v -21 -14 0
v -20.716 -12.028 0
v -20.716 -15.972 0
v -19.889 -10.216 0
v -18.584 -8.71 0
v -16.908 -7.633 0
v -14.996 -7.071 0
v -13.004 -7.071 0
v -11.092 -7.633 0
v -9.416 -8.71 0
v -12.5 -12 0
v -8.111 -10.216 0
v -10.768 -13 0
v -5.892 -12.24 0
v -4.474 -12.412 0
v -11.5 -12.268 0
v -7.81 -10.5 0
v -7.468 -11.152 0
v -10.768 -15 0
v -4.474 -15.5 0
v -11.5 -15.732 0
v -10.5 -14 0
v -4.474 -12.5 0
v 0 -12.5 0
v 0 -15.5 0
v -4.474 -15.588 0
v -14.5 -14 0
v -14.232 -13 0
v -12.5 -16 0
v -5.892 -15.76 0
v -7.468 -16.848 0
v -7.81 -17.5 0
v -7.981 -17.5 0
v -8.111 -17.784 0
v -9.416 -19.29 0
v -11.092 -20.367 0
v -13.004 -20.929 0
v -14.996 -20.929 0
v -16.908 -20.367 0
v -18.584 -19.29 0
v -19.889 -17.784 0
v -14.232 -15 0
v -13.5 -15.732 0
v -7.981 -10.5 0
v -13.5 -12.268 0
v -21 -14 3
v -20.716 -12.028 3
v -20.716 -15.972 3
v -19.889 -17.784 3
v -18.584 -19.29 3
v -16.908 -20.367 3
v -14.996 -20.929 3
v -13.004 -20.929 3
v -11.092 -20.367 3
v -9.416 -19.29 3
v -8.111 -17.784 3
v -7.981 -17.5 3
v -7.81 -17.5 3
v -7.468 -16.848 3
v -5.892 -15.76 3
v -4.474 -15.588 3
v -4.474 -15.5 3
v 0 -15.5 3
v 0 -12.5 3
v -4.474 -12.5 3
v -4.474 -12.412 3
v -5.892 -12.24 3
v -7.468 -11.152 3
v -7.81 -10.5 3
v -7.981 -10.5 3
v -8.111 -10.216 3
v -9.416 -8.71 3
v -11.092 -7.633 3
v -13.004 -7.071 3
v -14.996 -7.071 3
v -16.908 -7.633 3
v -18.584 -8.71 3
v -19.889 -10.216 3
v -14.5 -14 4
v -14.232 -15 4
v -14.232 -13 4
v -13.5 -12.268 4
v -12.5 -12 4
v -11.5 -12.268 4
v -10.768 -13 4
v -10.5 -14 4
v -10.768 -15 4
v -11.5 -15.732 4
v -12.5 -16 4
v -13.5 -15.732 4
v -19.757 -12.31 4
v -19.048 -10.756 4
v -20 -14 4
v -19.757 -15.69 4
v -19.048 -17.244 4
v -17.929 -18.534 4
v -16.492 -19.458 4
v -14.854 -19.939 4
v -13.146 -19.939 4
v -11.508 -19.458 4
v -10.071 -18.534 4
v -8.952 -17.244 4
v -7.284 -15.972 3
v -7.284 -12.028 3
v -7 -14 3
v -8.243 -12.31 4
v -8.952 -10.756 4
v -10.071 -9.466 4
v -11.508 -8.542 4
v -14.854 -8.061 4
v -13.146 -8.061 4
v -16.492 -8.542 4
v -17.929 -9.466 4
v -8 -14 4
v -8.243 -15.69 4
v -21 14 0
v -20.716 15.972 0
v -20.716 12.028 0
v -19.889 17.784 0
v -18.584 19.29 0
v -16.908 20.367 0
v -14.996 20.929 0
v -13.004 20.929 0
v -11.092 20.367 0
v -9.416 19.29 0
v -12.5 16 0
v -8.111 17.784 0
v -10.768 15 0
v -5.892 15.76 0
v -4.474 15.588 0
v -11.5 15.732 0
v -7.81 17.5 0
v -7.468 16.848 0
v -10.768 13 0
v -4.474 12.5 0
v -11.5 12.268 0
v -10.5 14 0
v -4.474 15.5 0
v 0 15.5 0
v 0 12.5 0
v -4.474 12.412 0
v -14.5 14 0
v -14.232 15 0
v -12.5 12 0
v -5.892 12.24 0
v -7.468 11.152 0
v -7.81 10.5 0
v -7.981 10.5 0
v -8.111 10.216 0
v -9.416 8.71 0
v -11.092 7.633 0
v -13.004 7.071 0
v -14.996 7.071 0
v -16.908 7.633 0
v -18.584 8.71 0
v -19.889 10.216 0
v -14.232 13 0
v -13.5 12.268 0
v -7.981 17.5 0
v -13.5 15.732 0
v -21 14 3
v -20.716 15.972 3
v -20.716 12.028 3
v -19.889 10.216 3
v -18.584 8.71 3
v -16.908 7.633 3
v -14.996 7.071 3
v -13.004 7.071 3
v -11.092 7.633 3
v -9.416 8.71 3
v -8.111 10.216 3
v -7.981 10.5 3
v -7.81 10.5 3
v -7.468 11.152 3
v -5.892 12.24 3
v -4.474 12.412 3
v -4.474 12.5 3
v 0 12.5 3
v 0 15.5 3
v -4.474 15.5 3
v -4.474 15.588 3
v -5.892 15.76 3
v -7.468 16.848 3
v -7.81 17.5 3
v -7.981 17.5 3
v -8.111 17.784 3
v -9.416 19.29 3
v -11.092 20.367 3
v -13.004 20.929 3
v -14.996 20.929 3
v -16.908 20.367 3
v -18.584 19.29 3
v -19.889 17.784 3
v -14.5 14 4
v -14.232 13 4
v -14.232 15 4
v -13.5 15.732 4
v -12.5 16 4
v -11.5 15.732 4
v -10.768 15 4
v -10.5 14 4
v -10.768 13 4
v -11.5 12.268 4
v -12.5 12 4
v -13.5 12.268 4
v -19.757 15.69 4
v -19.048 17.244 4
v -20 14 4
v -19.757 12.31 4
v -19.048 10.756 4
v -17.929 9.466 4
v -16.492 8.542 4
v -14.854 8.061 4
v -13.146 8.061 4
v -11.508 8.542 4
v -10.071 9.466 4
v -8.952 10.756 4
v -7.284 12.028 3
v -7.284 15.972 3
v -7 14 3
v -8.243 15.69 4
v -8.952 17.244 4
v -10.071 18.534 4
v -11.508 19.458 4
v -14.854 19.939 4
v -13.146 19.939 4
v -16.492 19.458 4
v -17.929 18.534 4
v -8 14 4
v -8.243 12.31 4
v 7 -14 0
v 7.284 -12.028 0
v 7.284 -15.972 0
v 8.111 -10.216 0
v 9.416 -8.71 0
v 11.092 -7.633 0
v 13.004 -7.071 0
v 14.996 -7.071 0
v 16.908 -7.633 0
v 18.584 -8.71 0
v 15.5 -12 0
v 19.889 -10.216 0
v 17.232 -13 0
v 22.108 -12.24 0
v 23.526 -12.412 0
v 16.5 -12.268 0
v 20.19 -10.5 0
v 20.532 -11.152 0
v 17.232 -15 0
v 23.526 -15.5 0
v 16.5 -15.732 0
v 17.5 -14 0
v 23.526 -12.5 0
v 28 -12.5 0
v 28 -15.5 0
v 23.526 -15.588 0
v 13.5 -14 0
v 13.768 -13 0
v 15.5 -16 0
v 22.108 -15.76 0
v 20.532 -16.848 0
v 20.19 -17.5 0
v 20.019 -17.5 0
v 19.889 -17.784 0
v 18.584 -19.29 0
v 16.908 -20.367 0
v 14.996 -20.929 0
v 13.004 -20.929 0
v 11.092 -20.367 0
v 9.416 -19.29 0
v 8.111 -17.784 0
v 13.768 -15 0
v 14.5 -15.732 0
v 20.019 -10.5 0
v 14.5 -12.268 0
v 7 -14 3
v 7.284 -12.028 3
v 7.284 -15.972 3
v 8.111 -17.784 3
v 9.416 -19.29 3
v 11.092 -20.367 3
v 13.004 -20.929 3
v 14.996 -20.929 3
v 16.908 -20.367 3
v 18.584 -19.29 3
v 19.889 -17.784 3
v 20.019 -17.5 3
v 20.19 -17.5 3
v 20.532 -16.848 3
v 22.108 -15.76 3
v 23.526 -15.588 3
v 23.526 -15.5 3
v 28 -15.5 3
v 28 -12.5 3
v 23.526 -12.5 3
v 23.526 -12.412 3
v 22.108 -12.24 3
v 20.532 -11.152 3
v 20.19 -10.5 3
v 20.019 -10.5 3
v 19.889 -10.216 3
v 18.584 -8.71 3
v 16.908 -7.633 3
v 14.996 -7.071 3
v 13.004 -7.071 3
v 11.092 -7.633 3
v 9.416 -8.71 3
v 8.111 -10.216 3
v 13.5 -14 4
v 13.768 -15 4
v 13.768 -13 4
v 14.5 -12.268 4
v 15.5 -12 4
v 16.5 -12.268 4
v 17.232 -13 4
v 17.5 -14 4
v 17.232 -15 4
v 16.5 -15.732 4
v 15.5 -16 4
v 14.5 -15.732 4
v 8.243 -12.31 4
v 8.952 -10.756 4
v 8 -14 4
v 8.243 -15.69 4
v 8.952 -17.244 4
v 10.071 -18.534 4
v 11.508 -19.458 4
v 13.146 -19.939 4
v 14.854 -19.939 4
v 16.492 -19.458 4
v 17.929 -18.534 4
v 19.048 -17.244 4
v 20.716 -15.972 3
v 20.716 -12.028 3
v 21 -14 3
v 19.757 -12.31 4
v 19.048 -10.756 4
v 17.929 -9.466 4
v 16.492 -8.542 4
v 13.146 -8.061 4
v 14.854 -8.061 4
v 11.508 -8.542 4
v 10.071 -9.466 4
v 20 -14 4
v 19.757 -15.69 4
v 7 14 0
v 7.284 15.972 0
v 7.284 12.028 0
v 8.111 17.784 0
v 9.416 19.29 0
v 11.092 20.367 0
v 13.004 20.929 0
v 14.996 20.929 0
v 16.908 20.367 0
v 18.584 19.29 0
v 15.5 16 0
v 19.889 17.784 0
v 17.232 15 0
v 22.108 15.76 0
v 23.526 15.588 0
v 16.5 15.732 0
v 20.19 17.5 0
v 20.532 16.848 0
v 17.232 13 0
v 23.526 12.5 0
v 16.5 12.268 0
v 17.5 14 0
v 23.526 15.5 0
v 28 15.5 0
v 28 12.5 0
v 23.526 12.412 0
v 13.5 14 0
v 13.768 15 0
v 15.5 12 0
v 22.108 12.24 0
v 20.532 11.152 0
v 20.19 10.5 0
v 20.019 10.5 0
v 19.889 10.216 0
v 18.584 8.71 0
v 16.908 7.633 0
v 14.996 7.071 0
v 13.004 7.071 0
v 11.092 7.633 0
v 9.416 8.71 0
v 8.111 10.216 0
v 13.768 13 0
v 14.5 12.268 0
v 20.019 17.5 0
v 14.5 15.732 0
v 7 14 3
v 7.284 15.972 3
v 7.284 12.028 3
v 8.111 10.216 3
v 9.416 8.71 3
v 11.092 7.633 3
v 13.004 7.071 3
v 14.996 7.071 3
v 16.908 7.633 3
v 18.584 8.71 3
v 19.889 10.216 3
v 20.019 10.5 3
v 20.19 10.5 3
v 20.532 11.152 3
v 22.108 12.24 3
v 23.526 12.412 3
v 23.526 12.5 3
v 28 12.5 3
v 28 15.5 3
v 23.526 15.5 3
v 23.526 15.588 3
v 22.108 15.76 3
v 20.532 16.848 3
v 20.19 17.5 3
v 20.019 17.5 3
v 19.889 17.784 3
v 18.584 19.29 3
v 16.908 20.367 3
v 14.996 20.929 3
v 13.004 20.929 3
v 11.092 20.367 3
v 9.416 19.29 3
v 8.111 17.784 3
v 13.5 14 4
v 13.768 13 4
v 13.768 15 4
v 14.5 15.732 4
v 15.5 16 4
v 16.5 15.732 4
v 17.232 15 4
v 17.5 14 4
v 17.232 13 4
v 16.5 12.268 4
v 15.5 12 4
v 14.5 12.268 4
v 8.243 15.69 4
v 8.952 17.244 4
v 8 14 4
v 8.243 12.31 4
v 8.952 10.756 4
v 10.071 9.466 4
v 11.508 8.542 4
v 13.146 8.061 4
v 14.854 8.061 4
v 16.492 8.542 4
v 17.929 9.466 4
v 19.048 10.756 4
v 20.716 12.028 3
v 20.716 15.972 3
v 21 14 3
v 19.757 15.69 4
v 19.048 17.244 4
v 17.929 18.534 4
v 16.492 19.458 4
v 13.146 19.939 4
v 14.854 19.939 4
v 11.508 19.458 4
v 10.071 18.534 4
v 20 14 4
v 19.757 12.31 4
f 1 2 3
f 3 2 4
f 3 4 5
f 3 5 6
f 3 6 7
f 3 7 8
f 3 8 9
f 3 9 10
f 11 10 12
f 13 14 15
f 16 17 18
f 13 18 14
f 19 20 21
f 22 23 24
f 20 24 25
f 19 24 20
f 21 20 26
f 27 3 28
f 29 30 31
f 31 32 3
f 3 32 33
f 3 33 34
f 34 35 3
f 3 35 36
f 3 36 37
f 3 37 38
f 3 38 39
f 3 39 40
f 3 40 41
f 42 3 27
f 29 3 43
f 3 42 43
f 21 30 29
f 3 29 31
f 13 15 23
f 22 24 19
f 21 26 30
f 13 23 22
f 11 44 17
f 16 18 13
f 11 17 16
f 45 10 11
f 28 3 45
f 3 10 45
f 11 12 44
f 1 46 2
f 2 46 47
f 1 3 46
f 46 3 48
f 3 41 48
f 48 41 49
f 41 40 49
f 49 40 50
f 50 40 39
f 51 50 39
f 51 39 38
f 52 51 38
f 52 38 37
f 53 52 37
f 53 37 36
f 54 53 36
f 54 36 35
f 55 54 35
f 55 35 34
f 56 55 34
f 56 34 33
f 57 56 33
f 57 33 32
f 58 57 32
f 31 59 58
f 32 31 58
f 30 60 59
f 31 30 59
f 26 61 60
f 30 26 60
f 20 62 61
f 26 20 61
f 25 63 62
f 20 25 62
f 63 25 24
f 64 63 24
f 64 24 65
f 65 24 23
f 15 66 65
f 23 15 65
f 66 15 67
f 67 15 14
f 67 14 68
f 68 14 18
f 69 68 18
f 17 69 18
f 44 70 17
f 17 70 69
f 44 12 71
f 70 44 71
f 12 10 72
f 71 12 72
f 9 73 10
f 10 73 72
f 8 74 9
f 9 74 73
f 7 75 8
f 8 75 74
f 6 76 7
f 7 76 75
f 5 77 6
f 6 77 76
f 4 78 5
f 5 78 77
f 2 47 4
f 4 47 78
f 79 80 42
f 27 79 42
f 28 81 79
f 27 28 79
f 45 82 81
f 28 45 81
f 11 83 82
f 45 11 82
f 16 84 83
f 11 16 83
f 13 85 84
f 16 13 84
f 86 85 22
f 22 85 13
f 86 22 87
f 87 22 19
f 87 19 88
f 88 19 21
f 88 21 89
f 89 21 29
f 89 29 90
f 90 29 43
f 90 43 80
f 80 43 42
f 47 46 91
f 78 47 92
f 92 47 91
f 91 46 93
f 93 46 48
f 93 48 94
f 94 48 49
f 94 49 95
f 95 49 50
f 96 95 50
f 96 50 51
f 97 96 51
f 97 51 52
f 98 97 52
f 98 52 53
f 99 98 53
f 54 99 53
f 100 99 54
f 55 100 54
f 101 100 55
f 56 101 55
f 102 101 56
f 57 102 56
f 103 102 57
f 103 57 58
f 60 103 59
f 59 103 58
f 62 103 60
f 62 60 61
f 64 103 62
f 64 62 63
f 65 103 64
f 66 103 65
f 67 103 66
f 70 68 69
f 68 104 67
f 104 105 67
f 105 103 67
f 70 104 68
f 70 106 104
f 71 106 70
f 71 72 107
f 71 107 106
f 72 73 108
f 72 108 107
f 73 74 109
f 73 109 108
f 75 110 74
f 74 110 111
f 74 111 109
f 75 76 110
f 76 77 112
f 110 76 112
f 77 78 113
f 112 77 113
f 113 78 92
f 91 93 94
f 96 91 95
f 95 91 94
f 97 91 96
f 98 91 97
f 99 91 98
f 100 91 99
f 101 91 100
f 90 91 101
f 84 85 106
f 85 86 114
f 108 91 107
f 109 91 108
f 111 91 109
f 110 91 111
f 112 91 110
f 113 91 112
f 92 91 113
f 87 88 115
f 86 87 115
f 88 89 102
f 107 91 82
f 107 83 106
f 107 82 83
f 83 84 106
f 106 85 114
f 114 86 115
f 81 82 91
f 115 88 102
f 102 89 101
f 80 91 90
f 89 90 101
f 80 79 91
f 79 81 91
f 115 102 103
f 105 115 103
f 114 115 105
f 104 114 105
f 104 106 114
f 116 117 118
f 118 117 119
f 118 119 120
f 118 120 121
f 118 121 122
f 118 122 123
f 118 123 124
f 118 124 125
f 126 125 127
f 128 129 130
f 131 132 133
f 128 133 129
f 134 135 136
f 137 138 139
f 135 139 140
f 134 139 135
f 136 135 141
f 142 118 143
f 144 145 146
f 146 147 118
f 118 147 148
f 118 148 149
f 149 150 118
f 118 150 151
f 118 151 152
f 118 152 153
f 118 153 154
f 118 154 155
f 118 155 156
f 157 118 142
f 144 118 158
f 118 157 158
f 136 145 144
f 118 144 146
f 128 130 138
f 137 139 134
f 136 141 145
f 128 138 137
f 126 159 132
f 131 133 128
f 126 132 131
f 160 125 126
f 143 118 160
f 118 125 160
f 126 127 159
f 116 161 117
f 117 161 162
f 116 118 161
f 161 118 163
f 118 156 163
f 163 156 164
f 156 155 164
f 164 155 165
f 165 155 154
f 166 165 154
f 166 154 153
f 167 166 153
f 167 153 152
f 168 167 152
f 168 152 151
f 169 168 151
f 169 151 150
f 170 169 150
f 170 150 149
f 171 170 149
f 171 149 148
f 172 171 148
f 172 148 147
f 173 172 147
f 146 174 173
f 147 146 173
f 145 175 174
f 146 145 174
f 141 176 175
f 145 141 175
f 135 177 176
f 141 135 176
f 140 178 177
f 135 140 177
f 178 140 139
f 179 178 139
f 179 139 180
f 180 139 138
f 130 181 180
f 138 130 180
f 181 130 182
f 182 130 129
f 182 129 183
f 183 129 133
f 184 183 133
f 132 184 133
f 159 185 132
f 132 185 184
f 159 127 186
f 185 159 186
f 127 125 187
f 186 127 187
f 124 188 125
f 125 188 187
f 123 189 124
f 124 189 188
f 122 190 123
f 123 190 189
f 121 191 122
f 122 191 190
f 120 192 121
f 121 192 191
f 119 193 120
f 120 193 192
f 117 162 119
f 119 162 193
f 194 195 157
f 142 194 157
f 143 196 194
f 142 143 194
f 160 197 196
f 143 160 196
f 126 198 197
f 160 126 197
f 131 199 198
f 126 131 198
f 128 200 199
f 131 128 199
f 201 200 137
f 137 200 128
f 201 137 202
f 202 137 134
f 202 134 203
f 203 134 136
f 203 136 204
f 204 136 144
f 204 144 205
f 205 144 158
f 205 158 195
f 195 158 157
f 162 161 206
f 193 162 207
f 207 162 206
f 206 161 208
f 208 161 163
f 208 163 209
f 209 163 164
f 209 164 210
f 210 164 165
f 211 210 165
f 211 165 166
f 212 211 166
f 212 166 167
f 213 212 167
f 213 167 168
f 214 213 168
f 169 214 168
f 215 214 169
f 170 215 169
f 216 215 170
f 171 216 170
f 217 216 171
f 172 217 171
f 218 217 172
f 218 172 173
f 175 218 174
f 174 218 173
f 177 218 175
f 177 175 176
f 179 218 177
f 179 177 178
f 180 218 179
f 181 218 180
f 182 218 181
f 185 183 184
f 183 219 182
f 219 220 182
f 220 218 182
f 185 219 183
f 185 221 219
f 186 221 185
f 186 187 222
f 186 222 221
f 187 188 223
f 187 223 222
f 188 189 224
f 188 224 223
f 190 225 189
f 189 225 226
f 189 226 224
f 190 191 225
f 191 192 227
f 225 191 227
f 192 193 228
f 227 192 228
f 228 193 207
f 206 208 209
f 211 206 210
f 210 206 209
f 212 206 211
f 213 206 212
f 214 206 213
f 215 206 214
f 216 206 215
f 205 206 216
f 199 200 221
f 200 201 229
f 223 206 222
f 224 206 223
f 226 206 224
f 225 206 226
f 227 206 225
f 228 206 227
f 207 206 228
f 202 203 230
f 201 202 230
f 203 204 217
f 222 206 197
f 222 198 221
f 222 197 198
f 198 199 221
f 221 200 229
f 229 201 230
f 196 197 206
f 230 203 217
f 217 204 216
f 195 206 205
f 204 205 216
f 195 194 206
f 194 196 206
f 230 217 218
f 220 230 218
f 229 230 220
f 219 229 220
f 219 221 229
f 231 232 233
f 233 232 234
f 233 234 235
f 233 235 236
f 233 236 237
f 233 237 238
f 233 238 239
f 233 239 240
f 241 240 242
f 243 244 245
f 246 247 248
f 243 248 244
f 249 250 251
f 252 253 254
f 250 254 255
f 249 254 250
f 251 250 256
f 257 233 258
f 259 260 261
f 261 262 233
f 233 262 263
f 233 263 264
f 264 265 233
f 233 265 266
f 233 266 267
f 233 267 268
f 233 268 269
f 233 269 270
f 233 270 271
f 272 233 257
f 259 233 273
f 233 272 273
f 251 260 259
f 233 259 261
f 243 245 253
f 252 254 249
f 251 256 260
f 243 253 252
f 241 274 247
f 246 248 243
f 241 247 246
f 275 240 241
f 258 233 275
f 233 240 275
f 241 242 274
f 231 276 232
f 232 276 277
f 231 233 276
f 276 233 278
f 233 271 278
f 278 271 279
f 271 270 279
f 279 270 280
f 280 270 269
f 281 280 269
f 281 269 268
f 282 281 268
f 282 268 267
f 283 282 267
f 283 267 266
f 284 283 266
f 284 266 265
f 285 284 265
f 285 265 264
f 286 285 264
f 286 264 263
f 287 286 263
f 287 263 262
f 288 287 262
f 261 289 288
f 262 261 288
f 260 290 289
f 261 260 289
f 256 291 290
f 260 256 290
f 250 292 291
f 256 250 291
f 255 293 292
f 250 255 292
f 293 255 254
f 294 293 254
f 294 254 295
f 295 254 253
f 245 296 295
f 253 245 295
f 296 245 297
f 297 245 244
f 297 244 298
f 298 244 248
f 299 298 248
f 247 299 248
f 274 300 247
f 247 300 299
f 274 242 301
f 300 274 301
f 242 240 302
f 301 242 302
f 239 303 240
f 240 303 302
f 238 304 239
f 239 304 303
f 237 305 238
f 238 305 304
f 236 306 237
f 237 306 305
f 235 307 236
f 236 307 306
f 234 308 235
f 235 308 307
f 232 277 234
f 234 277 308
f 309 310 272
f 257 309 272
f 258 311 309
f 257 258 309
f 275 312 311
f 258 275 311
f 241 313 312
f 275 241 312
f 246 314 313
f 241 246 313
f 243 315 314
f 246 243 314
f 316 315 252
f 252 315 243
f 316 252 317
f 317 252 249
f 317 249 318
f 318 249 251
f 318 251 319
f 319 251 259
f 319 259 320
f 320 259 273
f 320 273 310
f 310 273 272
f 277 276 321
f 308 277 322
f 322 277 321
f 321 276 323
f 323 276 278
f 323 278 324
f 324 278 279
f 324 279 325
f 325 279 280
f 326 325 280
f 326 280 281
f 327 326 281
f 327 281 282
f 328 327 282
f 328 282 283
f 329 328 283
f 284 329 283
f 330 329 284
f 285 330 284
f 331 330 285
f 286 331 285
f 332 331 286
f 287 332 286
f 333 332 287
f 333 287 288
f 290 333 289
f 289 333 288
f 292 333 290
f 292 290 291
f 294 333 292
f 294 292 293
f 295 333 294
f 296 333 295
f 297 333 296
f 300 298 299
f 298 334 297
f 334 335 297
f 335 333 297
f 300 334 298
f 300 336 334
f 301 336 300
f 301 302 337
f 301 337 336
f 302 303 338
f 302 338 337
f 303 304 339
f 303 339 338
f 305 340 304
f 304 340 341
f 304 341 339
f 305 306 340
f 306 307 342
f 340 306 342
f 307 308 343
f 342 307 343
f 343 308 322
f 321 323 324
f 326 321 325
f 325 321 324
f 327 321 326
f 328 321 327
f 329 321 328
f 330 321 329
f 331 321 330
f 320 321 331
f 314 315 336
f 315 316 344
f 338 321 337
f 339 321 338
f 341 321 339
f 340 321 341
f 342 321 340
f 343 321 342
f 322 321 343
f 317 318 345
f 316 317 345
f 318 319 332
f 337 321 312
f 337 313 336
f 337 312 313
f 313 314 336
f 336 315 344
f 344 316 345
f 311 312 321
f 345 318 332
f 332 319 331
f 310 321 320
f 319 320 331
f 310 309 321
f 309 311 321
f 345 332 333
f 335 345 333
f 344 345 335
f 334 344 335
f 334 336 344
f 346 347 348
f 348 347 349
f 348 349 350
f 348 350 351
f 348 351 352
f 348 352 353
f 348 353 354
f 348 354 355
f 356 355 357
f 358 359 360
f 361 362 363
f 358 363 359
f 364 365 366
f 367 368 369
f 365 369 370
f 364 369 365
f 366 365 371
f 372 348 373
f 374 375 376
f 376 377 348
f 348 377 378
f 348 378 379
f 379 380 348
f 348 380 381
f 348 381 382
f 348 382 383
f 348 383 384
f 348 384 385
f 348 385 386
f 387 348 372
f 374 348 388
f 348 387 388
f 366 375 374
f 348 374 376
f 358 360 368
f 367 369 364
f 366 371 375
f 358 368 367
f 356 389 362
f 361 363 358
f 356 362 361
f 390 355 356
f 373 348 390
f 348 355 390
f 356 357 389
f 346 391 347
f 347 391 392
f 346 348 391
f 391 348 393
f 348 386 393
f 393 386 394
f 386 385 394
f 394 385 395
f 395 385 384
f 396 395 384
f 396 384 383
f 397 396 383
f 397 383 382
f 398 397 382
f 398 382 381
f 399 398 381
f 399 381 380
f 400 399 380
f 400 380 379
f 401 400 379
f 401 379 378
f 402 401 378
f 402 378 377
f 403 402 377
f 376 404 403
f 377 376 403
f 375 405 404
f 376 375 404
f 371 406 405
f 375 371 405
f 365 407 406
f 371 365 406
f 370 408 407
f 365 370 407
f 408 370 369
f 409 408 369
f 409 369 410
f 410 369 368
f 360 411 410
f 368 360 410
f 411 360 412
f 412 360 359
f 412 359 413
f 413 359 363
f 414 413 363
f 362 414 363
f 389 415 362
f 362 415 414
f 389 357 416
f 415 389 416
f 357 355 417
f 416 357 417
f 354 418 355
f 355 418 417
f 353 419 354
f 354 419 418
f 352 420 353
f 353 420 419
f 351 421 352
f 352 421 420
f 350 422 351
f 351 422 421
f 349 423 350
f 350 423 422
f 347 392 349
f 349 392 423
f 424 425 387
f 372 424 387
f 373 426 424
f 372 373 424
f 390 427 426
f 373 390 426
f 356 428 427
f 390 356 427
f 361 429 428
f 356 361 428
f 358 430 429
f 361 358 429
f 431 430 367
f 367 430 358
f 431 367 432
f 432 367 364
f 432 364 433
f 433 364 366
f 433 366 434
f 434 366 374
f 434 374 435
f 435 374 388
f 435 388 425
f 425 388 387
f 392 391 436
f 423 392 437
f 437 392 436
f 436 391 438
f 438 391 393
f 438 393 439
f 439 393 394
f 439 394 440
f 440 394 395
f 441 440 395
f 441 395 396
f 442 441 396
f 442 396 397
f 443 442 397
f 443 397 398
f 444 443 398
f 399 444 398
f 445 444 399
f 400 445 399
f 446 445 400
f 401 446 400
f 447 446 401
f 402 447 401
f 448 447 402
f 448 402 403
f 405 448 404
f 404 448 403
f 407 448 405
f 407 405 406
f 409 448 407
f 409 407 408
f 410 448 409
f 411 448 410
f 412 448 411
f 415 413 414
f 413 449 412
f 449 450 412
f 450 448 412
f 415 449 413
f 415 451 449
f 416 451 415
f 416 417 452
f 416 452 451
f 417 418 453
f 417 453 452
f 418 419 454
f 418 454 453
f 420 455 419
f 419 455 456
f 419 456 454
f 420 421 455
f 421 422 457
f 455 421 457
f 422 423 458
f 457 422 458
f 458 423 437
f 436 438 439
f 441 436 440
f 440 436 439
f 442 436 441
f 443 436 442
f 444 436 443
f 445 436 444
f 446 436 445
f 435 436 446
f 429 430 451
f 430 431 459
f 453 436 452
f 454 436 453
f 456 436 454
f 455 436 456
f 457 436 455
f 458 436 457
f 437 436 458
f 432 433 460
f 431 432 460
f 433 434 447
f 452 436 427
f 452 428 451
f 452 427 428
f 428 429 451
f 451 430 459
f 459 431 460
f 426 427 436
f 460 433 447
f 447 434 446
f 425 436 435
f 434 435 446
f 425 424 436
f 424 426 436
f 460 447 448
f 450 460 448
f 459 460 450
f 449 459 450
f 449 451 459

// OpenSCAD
// od = Outside diameter
// id = ionside (hole) diameter
// rt = retainer thickness
// ho = hole offset
// bh = Bevel height
// ll = lever length
// lt = lever thickness (width)
// d  = delta
module PrintBedRetainer(od, id, rt, ho, bh, ll, lt, d)
{
	s30 = sin(30);
    c30 = cos(30);
    lfr = od/2-lt;		// Lever fillet radius		
    lfp = od/2+lfr;		// Lever fillet pitch radius
    intersection()
    {
	    	difference()
		{
			union()
        		{
				cylinder(r=od/2, h=rt);
				translate([0,-od/4,0]) cube(size=[ll, od/2, rt]);
			}
			translate([ho,0,-d]) cylinder(r=id/2, h=rt+2*d, $fn=12);
			translate([c30*lfp,-s30*lfp,-d])
			{	
				cylinder(r=lfr, h=rt+2*d);
				translate([0,-lfr,0]) cube(size=[ll, lfr*2, rt+2*d] );
			}
			translate([c30*lfp,+s30*lfp,-d])
			{	
				cylinder(r=lfr, h=rt+2*d);
				translate([0,-lfr,0]) cube(size=[ll, lfr*2, rt+2*d] );
			}
    		}
		union()
        {
			translate([0,0,rt-bh]) cylinder(r1=od/2, r2=od/2-bh*1, h=bh);
        		translate([0,0,-bh]) cylinder(r=ll+d, h=rt);
      	}
	}
}

// Actual objects here

ll = 14;
for (xo = [-ll, ll])
{
    for ( yo = [-ll, ll])
    {
        translate([xo, yo, 0])
        //               od  id rt ho   bh ll  lt d
        PrintBedRetainer(14, 4, 4, 1.5, 1, ll, 3, 1);
	}
}
